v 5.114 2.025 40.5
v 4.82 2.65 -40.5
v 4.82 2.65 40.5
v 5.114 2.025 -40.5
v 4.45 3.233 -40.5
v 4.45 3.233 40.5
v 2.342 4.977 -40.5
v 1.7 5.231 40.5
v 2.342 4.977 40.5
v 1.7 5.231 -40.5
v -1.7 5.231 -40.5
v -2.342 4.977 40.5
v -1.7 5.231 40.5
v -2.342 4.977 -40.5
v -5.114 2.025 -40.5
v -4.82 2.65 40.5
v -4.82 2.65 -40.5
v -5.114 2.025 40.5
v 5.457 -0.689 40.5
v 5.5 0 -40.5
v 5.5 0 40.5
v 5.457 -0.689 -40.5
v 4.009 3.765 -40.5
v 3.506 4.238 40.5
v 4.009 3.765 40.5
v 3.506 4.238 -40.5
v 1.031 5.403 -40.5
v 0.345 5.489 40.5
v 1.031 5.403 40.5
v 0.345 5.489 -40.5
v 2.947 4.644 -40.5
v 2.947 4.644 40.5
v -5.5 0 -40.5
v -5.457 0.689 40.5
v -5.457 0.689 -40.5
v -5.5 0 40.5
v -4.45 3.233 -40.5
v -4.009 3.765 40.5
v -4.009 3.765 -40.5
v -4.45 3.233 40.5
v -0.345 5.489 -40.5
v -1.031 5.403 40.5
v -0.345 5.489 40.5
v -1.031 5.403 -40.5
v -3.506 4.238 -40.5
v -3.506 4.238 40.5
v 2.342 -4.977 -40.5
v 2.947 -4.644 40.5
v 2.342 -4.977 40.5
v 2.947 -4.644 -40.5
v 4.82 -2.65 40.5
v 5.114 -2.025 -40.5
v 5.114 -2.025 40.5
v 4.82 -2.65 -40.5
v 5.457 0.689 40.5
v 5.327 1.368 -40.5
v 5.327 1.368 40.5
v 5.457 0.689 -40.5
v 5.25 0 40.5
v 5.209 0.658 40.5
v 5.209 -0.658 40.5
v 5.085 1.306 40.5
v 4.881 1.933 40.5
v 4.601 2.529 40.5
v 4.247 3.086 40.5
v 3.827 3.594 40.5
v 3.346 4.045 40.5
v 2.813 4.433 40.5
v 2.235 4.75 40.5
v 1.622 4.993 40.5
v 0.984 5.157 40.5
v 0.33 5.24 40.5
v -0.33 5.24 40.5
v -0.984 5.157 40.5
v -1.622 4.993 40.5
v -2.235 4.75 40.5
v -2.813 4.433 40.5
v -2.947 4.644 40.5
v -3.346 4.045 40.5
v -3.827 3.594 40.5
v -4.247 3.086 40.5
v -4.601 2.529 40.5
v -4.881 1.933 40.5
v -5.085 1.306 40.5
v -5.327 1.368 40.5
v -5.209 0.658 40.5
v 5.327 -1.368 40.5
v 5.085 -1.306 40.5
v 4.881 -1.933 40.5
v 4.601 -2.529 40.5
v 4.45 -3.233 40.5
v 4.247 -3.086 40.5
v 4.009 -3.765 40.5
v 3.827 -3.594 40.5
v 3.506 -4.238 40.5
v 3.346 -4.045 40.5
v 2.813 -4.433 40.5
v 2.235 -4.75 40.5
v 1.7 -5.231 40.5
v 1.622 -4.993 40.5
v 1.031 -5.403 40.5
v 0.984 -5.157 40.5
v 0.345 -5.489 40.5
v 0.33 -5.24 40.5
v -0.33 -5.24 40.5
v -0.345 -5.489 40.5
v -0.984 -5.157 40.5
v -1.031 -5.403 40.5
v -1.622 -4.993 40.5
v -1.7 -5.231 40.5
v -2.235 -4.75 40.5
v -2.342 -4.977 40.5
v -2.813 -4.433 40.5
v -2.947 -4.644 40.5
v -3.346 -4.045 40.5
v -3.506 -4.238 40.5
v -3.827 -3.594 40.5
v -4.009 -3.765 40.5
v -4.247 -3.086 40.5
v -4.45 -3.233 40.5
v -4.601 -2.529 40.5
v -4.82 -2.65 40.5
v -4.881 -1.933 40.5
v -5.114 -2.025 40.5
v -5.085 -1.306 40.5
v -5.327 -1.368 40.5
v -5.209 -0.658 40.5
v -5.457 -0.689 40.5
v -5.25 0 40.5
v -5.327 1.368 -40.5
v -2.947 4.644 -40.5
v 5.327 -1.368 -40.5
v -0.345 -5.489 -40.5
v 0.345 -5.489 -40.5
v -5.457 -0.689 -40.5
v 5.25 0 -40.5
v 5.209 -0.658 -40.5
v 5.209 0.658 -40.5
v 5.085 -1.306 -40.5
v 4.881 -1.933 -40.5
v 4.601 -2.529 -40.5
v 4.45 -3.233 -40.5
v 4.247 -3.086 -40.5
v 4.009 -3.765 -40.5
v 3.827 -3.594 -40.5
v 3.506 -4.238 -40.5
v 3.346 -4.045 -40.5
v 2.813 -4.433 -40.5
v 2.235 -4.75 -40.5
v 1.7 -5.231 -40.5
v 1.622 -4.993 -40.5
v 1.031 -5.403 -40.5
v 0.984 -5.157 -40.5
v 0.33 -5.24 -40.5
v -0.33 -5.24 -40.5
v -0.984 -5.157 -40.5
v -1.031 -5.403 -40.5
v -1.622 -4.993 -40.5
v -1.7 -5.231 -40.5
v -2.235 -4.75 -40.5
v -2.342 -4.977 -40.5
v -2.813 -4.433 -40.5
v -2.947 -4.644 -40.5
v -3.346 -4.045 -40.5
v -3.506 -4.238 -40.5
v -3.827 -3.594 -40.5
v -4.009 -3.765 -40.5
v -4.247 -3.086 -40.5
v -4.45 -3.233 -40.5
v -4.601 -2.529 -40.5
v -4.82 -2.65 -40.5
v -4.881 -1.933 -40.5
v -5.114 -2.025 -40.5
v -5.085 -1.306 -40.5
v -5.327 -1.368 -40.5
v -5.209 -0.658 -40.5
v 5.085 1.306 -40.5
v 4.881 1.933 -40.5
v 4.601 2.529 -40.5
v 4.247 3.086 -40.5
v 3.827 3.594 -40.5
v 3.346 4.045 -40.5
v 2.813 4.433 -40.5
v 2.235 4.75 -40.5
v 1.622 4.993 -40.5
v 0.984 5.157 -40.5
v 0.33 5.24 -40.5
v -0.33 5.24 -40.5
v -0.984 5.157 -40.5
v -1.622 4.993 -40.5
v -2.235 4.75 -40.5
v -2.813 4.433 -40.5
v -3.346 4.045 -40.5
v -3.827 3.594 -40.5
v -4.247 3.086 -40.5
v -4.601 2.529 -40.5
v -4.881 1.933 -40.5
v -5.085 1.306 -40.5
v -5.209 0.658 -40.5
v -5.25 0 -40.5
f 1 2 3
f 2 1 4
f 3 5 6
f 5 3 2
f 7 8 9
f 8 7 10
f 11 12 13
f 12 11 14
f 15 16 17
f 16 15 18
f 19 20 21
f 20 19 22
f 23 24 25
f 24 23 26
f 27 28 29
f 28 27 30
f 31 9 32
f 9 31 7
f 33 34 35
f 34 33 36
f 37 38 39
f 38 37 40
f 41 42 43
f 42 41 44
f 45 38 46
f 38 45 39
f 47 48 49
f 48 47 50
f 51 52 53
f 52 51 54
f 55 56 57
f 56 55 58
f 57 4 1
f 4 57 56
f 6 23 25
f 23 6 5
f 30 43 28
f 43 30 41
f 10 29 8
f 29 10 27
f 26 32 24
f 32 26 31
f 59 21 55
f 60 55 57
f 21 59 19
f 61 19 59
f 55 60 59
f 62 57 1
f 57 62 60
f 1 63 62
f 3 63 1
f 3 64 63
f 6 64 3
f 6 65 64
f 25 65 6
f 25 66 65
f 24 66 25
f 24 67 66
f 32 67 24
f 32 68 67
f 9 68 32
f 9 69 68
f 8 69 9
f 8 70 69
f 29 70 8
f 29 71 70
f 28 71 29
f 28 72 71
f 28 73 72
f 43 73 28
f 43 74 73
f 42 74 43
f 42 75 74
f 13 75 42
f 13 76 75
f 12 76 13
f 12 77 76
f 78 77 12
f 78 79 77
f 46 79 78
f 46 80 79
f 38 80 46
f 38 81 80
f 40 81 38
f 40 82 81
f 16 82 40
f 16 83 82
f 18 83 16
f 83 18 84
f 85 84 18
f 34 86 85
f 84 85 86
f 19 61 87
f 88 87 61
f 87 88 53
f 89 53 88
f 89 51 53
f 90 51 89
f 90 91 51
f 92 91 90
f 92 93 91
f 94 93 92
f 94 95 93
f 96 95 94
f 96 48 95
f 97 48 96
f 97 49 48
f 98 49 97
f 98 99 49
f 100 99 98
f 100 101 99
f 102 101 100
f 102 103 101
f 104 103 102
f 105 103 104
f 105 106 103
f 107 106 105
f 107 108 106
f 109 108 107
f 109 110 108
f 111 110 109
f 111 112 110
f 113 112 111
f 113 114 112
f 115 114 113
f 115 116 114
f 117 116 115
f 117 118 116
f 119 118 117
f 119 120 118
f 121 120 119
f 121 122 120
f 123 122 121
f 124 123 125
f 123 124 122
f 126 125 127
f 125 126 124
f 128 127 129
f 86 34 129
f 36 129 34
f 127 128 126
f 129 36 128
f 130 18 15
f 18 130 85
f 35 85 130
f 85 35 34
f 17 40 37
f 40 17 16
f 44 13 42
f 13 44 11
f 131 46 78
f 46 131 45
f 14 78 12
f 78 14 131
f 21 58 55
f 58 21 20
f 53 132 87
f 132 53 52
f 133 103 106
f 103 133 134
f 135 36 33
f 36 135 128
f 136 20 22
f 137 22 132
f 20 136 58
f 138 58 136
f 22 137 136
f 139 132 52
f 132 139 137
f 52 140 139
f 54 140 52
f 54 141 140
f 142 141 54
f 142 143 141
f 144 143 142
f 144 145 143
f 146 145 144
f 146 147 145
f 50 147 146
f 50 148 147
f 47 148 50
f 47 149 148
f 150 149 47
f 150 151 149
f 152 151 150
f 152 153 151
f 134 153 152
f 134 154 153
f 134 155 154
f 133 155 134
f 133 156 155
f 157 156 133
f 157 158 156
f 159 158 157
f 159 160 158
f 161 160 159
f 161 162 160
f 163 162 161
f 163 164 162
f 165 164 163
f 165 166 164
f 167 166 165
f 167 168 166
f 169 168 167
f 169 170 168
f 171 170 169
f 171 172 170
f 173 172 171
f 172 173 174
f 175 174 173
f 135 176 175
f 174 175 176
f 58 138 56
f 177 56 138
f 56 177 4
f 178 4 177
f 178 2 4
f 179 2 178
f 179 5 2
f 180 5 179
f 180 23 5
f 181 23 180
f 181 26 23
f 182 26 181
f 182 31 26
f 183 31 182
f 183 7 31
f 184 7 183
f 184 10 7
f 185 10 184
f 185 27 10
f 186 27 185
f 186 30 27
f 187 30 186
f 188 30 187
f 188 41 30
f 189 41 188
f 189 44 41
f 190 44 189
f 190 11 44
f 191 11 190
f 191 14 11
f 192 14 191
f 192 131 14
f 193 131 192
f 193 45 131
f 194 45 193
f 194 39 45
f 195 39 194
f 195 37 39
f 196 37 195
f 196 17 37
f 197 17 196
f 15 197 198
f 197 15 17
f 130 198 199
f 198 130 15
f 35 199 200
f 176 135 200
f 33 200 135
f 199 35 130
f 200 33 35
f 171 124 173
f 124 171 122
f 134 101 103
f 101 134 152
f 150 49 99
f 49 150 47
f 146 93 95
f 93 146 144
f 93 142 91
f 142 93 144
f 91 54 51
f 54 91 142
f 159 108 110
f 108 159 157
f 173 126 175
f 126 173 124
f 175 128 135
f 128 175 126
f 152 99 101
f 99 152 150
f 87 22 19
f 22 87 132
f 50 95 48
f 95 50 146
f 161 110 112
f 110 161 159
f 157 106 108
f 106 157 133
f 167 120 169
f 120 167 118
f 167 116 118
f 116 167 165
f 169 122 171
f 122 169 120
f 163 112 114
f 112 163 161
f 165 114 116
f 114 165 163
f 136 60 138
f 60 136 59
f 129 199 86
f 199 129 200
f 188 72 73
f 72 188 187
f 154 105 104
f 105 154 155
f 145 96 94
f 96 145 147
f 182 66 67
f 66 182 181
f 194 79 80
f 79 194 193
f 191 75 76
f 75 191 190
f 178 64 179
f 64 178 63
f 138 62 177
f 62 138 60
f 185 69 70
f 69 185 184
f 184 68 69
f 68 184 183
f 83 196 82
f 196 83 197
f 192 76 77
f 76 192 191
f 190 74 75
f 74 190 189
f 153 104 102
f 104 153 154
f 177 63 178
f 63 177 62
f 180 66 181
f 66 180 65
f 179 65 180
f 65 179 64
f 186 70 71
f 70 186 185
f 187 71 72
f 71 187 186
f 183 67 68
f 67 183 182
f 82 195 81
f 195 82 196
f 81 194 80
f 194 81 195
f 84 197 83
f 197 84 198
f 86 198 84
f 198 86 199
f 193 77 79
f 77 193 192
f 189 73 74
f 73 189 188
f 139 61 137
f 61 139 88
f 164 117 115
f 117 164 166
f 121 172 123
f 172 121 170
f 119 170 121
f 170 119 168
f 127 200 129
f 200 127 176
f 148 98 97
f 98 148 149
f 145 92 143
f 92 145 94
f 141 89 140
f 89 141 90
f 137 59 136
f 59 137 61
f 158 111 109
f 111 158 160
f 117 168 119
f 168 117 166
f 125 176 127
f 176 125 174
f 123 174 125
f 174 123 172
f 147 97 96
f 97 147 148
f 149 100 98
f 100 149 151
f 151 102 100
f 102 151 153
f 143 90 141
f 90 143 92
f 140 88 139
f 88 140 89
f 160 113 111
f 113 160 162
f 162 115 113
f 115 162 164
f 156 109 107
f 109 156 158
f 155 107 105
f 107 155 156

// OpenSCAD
$fn = 50;


difference() {
	union() {
		translate(v = [0, 0, -40.5000000000]) {
			cylinder(h = 81, r = 5.5000000000);
		}
	}
	union() {
		translate(v = [0, 0, -100.0000000000]) {
			cylinder(h = 200, r = 5.2500000000);
		}
	}
}
